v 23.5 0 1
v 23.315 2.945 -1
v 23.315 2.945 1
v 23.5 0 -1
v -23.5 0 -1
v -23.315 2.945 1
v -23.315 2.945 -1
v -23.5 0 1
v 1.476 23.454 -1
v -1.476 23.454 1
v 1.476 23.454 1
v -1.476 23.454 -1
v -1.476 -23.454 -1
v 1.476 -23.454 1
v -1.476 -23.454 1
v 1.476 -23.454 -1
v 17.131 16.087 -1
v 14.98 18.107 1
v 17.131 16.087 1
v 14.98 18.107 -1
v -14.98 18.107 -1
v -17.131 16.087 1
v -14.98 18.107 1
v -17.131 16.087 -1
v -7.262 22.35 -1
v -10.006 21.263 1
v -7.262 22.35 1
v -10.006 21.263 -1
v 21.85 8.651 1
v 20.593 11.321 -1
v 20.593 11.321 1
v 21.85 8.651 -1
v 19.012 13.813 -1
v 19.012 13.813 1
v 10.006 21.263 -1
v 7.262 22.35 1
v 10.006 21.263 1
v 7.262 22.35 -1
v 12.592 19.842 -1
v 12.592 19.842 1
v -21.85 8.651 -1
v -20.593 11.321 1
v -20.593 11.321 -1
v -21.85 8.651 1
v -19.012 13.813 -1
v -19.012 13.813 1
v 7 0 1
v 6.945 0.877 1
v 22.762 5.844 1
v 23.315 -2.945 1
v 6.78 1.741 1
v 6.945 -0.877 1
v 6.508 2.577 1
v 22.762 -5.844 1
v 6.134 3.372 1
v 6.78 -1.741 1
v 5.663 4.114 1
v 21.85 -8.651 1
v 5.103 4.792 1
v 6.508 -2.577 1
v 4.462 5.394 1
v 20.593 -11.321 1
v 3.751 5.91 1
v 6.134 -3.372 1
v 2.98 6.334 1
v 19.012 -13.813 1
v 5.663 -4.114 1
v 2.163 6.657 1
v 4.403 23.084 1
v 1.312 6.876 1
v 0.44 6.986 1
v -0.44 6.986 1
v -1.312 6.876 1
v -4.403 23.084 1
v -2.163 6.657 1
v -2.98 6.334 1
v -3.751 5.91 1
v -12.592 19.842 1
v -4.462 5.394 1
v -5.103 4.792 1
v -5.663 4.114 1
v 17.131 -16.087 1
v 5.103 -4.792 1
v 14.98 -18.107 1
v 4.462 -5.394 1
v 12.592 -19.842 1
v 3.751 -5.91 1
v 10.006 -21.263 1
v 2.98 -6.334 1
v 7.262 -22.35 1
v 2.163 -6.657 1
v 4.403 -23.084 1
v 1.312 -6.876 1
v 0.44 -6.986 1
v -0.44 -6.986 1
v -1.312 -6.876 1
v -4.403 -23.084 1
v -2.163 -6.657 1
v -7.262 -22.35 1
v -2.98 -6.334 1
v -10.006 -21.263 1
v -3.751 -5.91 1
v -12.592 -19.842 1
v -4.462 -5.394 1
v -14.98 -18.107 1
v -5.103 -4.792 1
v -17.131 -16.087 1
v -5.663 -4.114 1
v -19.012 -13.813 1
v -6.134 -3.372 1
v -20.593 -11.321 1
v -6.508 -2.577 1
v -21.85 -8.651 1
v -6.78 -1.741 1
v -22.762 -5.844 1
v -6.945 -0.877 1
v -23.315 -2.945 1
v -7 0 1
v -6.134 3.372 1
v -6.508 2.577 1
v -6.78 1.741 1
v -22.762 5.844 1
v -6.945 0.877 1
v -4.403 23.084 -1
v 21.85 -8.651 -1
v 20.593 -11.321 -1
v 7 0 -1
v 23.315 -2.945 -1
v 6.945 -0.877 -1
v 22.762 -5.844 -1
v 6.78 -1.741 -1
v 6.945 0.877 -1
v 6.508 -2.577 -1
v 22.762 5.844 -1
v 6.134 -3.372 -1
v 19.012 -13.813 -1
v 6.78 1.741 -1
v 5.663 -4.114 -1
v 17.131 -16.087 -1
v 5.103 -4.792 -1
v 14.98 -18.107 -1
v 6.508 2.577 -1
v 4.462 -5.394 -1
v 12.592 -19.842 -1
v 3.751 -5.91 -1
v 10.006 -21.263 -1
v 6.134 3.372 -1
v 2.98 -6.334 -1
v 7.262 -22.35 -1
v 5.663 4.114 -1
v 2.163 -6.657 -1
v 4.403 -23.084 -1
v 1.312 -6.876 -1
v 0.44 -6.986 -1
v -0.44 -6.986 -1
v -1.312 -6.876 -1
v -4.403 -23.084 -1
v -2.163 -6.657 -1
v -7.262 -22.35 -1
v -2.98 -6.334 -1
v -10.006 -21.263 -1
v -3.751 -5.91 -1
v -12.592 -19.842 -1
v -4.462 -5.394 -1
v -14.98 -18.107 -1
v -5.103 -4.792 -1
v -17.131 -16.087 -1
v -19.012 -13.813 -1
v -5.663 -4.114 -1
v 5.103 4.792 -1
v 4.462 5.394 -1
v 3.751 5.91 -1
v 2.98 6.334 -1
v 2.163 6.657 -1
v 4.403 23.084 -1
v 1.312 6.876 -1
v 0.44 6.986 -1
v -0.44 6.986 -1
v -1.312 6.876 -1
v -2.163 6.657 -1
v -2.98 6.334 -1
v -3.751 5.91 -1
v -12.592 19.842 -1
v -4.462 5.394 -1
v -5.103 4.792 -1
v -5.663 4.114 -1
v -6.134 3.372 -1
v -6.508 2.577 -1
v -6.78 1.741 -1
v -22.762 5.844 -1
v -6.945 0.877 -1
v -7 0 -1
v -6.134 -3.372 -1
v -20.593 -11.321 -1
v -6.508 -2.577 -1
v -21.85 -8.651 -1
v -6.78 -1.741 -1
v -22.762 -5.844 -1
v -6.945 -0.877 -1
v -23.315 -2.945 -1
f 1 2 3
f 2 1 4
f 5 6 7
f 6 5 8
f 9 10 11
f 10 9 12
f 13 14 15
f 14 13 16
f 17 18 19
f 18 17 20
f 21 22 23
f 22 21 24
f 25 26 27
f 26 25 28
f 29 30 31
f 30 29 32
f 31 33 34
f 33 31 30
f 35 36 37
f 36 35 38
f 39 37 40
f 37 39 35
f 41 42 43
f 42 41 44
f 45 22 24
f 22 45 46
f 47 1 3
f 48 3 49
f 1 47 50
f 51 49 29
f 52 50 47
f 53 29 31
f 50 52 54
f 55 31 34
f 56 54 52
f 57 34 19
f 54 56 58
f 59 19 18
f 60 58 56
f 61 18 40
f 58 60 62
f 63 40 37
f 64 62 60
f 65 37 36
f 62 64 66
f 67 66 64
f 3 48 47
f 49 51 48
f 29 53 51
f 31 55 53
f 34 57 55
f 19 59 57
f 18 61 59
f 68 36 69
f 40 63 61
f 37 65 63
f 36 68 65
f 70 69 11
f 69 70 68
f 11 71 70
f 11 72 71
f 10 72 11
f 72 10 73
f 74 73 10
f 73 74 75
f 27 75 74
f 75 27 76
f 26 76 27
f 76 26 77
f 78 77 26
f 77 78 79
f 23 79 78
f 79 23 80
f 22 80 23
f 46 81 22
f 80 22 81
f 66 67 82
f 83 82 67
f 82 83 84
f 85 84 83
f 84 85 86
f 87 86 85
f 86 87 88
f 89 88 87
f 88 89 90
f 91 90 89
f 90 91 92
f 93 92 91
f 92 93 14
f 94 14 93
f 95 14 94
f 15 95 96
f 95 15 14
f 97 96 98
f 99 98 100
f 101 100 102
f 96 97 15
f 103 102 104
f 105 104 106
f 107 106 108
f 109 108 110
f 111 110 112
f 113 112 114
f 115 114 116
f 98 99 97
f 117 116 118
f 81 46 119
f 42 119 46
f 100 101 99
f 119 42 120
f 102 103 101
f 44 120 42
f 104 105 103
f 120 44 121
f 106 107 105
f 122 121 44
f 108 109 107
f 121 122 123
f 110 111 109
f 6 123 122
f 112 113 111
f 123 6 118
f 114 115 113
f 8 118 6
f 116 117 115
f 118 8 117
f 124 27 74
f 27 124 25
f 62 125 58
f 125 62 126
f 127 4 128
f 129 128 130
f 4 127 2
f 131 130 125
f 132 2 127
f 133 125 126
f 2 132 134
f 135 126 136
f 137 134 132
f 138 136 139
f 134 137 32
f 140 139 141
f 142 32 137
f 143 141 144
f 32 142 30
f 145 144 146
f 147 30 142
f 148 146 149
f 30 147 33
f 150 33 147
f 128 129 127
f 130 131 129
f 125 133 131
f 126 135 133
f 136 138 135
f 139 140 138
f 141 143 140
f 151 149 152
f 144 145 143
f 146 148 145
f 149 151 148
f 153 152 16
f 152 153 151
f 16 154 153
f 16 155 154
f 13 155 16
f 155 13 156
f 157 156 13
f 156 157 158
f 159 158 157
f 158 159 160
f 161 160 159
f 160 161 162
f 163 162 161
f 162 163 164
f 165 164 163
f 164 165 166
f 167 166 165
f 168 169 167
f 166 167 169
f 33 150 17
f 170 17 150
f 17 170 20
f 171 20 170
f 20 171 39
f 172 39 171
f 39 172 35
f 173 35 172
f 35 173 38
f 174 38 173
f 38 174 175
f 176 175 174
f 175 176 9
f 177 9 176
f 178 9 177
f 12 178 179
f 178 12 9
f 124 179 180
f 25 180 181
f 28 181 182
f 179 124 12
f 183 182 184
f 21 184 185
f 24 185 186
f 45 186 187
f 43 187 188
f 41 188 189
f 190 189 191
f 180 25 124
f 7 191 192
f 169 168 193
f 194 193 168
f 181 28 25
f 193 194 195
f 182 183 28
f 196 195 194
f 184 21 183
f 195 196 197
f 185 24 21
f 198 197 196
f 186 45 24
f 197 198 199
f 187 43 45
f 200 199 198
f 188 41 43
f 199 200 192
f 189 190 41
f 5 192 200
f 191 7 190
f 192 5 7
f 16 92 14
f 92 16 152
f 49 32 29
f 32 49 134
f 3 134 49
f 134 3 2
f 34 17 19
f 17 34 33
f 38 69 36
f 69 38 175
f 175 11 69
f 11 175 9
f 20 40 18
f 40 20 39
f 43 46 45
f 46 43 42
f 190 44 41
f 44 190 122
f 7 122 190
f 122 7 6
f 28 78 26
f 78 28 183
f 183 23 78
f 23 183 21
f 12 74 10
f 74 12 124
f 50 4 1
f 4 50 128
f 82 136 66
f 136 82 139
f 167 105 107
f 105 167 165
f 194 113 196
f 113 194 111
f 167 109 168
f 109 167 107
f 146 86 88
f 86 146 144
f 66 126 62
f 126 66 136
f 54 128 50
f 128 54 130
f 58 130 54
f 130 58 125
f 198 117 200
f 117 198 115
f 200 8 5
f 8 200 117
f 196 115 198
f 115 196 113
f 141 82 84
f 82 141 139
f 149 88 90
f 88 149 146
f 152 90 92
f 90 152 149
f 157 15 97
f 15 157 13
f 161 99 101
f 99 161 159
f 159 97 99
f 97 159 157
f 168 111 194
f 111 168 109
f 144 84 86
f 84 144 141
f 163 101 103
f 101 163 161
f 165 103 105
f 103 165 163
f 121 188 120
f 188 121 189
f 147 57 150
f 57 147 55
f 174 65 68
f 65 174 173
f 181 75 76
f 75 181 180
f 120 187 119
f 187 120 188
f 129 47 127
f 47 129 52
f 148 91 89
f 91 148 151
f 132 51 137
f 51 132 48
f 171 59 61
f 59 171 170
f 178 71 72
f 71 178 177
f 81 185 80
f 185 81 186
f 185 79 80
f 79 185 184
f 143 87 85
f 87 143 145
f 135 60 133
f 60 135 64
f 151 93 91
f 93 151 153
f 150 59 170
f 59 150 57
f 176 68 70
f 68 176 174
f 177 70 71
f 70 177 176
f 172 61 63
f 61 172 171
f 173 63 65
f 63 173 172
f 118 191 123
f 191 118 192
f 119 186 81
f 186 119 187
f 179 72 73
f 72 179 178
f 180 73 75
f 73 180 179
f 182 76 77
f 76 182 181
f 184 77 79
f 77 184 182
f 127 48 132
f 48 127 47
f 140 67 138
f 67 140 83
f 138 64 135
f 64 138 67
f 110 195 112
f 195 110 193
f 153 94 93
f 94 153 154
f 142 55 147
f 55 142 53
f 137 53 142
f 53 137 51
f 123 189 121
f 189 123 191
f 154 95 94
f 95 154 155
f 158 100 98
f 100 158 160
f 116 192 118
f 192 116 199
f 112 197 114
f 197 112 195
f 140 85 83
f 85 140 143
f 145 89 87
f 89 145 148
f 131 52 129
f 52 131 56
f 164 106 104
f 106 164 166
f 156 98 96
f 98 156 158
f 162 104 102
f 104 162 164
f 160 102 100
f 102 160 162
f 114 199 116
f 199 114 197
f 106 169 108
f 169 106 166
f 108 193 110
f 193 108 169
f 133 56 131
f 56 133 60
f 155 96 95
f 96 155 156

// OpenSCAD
$fn = 50;


difference() {
	union() {
		translate(v = [0, 0, -1.0000000000]) {
			cylinder(h = 2, r = 23.5000000000);
		}
	}
	union() {
		translate(v = [0, 0, -100.0000000000]) {
			cylinder(h = 200, r = 7);
		}
	}
}
